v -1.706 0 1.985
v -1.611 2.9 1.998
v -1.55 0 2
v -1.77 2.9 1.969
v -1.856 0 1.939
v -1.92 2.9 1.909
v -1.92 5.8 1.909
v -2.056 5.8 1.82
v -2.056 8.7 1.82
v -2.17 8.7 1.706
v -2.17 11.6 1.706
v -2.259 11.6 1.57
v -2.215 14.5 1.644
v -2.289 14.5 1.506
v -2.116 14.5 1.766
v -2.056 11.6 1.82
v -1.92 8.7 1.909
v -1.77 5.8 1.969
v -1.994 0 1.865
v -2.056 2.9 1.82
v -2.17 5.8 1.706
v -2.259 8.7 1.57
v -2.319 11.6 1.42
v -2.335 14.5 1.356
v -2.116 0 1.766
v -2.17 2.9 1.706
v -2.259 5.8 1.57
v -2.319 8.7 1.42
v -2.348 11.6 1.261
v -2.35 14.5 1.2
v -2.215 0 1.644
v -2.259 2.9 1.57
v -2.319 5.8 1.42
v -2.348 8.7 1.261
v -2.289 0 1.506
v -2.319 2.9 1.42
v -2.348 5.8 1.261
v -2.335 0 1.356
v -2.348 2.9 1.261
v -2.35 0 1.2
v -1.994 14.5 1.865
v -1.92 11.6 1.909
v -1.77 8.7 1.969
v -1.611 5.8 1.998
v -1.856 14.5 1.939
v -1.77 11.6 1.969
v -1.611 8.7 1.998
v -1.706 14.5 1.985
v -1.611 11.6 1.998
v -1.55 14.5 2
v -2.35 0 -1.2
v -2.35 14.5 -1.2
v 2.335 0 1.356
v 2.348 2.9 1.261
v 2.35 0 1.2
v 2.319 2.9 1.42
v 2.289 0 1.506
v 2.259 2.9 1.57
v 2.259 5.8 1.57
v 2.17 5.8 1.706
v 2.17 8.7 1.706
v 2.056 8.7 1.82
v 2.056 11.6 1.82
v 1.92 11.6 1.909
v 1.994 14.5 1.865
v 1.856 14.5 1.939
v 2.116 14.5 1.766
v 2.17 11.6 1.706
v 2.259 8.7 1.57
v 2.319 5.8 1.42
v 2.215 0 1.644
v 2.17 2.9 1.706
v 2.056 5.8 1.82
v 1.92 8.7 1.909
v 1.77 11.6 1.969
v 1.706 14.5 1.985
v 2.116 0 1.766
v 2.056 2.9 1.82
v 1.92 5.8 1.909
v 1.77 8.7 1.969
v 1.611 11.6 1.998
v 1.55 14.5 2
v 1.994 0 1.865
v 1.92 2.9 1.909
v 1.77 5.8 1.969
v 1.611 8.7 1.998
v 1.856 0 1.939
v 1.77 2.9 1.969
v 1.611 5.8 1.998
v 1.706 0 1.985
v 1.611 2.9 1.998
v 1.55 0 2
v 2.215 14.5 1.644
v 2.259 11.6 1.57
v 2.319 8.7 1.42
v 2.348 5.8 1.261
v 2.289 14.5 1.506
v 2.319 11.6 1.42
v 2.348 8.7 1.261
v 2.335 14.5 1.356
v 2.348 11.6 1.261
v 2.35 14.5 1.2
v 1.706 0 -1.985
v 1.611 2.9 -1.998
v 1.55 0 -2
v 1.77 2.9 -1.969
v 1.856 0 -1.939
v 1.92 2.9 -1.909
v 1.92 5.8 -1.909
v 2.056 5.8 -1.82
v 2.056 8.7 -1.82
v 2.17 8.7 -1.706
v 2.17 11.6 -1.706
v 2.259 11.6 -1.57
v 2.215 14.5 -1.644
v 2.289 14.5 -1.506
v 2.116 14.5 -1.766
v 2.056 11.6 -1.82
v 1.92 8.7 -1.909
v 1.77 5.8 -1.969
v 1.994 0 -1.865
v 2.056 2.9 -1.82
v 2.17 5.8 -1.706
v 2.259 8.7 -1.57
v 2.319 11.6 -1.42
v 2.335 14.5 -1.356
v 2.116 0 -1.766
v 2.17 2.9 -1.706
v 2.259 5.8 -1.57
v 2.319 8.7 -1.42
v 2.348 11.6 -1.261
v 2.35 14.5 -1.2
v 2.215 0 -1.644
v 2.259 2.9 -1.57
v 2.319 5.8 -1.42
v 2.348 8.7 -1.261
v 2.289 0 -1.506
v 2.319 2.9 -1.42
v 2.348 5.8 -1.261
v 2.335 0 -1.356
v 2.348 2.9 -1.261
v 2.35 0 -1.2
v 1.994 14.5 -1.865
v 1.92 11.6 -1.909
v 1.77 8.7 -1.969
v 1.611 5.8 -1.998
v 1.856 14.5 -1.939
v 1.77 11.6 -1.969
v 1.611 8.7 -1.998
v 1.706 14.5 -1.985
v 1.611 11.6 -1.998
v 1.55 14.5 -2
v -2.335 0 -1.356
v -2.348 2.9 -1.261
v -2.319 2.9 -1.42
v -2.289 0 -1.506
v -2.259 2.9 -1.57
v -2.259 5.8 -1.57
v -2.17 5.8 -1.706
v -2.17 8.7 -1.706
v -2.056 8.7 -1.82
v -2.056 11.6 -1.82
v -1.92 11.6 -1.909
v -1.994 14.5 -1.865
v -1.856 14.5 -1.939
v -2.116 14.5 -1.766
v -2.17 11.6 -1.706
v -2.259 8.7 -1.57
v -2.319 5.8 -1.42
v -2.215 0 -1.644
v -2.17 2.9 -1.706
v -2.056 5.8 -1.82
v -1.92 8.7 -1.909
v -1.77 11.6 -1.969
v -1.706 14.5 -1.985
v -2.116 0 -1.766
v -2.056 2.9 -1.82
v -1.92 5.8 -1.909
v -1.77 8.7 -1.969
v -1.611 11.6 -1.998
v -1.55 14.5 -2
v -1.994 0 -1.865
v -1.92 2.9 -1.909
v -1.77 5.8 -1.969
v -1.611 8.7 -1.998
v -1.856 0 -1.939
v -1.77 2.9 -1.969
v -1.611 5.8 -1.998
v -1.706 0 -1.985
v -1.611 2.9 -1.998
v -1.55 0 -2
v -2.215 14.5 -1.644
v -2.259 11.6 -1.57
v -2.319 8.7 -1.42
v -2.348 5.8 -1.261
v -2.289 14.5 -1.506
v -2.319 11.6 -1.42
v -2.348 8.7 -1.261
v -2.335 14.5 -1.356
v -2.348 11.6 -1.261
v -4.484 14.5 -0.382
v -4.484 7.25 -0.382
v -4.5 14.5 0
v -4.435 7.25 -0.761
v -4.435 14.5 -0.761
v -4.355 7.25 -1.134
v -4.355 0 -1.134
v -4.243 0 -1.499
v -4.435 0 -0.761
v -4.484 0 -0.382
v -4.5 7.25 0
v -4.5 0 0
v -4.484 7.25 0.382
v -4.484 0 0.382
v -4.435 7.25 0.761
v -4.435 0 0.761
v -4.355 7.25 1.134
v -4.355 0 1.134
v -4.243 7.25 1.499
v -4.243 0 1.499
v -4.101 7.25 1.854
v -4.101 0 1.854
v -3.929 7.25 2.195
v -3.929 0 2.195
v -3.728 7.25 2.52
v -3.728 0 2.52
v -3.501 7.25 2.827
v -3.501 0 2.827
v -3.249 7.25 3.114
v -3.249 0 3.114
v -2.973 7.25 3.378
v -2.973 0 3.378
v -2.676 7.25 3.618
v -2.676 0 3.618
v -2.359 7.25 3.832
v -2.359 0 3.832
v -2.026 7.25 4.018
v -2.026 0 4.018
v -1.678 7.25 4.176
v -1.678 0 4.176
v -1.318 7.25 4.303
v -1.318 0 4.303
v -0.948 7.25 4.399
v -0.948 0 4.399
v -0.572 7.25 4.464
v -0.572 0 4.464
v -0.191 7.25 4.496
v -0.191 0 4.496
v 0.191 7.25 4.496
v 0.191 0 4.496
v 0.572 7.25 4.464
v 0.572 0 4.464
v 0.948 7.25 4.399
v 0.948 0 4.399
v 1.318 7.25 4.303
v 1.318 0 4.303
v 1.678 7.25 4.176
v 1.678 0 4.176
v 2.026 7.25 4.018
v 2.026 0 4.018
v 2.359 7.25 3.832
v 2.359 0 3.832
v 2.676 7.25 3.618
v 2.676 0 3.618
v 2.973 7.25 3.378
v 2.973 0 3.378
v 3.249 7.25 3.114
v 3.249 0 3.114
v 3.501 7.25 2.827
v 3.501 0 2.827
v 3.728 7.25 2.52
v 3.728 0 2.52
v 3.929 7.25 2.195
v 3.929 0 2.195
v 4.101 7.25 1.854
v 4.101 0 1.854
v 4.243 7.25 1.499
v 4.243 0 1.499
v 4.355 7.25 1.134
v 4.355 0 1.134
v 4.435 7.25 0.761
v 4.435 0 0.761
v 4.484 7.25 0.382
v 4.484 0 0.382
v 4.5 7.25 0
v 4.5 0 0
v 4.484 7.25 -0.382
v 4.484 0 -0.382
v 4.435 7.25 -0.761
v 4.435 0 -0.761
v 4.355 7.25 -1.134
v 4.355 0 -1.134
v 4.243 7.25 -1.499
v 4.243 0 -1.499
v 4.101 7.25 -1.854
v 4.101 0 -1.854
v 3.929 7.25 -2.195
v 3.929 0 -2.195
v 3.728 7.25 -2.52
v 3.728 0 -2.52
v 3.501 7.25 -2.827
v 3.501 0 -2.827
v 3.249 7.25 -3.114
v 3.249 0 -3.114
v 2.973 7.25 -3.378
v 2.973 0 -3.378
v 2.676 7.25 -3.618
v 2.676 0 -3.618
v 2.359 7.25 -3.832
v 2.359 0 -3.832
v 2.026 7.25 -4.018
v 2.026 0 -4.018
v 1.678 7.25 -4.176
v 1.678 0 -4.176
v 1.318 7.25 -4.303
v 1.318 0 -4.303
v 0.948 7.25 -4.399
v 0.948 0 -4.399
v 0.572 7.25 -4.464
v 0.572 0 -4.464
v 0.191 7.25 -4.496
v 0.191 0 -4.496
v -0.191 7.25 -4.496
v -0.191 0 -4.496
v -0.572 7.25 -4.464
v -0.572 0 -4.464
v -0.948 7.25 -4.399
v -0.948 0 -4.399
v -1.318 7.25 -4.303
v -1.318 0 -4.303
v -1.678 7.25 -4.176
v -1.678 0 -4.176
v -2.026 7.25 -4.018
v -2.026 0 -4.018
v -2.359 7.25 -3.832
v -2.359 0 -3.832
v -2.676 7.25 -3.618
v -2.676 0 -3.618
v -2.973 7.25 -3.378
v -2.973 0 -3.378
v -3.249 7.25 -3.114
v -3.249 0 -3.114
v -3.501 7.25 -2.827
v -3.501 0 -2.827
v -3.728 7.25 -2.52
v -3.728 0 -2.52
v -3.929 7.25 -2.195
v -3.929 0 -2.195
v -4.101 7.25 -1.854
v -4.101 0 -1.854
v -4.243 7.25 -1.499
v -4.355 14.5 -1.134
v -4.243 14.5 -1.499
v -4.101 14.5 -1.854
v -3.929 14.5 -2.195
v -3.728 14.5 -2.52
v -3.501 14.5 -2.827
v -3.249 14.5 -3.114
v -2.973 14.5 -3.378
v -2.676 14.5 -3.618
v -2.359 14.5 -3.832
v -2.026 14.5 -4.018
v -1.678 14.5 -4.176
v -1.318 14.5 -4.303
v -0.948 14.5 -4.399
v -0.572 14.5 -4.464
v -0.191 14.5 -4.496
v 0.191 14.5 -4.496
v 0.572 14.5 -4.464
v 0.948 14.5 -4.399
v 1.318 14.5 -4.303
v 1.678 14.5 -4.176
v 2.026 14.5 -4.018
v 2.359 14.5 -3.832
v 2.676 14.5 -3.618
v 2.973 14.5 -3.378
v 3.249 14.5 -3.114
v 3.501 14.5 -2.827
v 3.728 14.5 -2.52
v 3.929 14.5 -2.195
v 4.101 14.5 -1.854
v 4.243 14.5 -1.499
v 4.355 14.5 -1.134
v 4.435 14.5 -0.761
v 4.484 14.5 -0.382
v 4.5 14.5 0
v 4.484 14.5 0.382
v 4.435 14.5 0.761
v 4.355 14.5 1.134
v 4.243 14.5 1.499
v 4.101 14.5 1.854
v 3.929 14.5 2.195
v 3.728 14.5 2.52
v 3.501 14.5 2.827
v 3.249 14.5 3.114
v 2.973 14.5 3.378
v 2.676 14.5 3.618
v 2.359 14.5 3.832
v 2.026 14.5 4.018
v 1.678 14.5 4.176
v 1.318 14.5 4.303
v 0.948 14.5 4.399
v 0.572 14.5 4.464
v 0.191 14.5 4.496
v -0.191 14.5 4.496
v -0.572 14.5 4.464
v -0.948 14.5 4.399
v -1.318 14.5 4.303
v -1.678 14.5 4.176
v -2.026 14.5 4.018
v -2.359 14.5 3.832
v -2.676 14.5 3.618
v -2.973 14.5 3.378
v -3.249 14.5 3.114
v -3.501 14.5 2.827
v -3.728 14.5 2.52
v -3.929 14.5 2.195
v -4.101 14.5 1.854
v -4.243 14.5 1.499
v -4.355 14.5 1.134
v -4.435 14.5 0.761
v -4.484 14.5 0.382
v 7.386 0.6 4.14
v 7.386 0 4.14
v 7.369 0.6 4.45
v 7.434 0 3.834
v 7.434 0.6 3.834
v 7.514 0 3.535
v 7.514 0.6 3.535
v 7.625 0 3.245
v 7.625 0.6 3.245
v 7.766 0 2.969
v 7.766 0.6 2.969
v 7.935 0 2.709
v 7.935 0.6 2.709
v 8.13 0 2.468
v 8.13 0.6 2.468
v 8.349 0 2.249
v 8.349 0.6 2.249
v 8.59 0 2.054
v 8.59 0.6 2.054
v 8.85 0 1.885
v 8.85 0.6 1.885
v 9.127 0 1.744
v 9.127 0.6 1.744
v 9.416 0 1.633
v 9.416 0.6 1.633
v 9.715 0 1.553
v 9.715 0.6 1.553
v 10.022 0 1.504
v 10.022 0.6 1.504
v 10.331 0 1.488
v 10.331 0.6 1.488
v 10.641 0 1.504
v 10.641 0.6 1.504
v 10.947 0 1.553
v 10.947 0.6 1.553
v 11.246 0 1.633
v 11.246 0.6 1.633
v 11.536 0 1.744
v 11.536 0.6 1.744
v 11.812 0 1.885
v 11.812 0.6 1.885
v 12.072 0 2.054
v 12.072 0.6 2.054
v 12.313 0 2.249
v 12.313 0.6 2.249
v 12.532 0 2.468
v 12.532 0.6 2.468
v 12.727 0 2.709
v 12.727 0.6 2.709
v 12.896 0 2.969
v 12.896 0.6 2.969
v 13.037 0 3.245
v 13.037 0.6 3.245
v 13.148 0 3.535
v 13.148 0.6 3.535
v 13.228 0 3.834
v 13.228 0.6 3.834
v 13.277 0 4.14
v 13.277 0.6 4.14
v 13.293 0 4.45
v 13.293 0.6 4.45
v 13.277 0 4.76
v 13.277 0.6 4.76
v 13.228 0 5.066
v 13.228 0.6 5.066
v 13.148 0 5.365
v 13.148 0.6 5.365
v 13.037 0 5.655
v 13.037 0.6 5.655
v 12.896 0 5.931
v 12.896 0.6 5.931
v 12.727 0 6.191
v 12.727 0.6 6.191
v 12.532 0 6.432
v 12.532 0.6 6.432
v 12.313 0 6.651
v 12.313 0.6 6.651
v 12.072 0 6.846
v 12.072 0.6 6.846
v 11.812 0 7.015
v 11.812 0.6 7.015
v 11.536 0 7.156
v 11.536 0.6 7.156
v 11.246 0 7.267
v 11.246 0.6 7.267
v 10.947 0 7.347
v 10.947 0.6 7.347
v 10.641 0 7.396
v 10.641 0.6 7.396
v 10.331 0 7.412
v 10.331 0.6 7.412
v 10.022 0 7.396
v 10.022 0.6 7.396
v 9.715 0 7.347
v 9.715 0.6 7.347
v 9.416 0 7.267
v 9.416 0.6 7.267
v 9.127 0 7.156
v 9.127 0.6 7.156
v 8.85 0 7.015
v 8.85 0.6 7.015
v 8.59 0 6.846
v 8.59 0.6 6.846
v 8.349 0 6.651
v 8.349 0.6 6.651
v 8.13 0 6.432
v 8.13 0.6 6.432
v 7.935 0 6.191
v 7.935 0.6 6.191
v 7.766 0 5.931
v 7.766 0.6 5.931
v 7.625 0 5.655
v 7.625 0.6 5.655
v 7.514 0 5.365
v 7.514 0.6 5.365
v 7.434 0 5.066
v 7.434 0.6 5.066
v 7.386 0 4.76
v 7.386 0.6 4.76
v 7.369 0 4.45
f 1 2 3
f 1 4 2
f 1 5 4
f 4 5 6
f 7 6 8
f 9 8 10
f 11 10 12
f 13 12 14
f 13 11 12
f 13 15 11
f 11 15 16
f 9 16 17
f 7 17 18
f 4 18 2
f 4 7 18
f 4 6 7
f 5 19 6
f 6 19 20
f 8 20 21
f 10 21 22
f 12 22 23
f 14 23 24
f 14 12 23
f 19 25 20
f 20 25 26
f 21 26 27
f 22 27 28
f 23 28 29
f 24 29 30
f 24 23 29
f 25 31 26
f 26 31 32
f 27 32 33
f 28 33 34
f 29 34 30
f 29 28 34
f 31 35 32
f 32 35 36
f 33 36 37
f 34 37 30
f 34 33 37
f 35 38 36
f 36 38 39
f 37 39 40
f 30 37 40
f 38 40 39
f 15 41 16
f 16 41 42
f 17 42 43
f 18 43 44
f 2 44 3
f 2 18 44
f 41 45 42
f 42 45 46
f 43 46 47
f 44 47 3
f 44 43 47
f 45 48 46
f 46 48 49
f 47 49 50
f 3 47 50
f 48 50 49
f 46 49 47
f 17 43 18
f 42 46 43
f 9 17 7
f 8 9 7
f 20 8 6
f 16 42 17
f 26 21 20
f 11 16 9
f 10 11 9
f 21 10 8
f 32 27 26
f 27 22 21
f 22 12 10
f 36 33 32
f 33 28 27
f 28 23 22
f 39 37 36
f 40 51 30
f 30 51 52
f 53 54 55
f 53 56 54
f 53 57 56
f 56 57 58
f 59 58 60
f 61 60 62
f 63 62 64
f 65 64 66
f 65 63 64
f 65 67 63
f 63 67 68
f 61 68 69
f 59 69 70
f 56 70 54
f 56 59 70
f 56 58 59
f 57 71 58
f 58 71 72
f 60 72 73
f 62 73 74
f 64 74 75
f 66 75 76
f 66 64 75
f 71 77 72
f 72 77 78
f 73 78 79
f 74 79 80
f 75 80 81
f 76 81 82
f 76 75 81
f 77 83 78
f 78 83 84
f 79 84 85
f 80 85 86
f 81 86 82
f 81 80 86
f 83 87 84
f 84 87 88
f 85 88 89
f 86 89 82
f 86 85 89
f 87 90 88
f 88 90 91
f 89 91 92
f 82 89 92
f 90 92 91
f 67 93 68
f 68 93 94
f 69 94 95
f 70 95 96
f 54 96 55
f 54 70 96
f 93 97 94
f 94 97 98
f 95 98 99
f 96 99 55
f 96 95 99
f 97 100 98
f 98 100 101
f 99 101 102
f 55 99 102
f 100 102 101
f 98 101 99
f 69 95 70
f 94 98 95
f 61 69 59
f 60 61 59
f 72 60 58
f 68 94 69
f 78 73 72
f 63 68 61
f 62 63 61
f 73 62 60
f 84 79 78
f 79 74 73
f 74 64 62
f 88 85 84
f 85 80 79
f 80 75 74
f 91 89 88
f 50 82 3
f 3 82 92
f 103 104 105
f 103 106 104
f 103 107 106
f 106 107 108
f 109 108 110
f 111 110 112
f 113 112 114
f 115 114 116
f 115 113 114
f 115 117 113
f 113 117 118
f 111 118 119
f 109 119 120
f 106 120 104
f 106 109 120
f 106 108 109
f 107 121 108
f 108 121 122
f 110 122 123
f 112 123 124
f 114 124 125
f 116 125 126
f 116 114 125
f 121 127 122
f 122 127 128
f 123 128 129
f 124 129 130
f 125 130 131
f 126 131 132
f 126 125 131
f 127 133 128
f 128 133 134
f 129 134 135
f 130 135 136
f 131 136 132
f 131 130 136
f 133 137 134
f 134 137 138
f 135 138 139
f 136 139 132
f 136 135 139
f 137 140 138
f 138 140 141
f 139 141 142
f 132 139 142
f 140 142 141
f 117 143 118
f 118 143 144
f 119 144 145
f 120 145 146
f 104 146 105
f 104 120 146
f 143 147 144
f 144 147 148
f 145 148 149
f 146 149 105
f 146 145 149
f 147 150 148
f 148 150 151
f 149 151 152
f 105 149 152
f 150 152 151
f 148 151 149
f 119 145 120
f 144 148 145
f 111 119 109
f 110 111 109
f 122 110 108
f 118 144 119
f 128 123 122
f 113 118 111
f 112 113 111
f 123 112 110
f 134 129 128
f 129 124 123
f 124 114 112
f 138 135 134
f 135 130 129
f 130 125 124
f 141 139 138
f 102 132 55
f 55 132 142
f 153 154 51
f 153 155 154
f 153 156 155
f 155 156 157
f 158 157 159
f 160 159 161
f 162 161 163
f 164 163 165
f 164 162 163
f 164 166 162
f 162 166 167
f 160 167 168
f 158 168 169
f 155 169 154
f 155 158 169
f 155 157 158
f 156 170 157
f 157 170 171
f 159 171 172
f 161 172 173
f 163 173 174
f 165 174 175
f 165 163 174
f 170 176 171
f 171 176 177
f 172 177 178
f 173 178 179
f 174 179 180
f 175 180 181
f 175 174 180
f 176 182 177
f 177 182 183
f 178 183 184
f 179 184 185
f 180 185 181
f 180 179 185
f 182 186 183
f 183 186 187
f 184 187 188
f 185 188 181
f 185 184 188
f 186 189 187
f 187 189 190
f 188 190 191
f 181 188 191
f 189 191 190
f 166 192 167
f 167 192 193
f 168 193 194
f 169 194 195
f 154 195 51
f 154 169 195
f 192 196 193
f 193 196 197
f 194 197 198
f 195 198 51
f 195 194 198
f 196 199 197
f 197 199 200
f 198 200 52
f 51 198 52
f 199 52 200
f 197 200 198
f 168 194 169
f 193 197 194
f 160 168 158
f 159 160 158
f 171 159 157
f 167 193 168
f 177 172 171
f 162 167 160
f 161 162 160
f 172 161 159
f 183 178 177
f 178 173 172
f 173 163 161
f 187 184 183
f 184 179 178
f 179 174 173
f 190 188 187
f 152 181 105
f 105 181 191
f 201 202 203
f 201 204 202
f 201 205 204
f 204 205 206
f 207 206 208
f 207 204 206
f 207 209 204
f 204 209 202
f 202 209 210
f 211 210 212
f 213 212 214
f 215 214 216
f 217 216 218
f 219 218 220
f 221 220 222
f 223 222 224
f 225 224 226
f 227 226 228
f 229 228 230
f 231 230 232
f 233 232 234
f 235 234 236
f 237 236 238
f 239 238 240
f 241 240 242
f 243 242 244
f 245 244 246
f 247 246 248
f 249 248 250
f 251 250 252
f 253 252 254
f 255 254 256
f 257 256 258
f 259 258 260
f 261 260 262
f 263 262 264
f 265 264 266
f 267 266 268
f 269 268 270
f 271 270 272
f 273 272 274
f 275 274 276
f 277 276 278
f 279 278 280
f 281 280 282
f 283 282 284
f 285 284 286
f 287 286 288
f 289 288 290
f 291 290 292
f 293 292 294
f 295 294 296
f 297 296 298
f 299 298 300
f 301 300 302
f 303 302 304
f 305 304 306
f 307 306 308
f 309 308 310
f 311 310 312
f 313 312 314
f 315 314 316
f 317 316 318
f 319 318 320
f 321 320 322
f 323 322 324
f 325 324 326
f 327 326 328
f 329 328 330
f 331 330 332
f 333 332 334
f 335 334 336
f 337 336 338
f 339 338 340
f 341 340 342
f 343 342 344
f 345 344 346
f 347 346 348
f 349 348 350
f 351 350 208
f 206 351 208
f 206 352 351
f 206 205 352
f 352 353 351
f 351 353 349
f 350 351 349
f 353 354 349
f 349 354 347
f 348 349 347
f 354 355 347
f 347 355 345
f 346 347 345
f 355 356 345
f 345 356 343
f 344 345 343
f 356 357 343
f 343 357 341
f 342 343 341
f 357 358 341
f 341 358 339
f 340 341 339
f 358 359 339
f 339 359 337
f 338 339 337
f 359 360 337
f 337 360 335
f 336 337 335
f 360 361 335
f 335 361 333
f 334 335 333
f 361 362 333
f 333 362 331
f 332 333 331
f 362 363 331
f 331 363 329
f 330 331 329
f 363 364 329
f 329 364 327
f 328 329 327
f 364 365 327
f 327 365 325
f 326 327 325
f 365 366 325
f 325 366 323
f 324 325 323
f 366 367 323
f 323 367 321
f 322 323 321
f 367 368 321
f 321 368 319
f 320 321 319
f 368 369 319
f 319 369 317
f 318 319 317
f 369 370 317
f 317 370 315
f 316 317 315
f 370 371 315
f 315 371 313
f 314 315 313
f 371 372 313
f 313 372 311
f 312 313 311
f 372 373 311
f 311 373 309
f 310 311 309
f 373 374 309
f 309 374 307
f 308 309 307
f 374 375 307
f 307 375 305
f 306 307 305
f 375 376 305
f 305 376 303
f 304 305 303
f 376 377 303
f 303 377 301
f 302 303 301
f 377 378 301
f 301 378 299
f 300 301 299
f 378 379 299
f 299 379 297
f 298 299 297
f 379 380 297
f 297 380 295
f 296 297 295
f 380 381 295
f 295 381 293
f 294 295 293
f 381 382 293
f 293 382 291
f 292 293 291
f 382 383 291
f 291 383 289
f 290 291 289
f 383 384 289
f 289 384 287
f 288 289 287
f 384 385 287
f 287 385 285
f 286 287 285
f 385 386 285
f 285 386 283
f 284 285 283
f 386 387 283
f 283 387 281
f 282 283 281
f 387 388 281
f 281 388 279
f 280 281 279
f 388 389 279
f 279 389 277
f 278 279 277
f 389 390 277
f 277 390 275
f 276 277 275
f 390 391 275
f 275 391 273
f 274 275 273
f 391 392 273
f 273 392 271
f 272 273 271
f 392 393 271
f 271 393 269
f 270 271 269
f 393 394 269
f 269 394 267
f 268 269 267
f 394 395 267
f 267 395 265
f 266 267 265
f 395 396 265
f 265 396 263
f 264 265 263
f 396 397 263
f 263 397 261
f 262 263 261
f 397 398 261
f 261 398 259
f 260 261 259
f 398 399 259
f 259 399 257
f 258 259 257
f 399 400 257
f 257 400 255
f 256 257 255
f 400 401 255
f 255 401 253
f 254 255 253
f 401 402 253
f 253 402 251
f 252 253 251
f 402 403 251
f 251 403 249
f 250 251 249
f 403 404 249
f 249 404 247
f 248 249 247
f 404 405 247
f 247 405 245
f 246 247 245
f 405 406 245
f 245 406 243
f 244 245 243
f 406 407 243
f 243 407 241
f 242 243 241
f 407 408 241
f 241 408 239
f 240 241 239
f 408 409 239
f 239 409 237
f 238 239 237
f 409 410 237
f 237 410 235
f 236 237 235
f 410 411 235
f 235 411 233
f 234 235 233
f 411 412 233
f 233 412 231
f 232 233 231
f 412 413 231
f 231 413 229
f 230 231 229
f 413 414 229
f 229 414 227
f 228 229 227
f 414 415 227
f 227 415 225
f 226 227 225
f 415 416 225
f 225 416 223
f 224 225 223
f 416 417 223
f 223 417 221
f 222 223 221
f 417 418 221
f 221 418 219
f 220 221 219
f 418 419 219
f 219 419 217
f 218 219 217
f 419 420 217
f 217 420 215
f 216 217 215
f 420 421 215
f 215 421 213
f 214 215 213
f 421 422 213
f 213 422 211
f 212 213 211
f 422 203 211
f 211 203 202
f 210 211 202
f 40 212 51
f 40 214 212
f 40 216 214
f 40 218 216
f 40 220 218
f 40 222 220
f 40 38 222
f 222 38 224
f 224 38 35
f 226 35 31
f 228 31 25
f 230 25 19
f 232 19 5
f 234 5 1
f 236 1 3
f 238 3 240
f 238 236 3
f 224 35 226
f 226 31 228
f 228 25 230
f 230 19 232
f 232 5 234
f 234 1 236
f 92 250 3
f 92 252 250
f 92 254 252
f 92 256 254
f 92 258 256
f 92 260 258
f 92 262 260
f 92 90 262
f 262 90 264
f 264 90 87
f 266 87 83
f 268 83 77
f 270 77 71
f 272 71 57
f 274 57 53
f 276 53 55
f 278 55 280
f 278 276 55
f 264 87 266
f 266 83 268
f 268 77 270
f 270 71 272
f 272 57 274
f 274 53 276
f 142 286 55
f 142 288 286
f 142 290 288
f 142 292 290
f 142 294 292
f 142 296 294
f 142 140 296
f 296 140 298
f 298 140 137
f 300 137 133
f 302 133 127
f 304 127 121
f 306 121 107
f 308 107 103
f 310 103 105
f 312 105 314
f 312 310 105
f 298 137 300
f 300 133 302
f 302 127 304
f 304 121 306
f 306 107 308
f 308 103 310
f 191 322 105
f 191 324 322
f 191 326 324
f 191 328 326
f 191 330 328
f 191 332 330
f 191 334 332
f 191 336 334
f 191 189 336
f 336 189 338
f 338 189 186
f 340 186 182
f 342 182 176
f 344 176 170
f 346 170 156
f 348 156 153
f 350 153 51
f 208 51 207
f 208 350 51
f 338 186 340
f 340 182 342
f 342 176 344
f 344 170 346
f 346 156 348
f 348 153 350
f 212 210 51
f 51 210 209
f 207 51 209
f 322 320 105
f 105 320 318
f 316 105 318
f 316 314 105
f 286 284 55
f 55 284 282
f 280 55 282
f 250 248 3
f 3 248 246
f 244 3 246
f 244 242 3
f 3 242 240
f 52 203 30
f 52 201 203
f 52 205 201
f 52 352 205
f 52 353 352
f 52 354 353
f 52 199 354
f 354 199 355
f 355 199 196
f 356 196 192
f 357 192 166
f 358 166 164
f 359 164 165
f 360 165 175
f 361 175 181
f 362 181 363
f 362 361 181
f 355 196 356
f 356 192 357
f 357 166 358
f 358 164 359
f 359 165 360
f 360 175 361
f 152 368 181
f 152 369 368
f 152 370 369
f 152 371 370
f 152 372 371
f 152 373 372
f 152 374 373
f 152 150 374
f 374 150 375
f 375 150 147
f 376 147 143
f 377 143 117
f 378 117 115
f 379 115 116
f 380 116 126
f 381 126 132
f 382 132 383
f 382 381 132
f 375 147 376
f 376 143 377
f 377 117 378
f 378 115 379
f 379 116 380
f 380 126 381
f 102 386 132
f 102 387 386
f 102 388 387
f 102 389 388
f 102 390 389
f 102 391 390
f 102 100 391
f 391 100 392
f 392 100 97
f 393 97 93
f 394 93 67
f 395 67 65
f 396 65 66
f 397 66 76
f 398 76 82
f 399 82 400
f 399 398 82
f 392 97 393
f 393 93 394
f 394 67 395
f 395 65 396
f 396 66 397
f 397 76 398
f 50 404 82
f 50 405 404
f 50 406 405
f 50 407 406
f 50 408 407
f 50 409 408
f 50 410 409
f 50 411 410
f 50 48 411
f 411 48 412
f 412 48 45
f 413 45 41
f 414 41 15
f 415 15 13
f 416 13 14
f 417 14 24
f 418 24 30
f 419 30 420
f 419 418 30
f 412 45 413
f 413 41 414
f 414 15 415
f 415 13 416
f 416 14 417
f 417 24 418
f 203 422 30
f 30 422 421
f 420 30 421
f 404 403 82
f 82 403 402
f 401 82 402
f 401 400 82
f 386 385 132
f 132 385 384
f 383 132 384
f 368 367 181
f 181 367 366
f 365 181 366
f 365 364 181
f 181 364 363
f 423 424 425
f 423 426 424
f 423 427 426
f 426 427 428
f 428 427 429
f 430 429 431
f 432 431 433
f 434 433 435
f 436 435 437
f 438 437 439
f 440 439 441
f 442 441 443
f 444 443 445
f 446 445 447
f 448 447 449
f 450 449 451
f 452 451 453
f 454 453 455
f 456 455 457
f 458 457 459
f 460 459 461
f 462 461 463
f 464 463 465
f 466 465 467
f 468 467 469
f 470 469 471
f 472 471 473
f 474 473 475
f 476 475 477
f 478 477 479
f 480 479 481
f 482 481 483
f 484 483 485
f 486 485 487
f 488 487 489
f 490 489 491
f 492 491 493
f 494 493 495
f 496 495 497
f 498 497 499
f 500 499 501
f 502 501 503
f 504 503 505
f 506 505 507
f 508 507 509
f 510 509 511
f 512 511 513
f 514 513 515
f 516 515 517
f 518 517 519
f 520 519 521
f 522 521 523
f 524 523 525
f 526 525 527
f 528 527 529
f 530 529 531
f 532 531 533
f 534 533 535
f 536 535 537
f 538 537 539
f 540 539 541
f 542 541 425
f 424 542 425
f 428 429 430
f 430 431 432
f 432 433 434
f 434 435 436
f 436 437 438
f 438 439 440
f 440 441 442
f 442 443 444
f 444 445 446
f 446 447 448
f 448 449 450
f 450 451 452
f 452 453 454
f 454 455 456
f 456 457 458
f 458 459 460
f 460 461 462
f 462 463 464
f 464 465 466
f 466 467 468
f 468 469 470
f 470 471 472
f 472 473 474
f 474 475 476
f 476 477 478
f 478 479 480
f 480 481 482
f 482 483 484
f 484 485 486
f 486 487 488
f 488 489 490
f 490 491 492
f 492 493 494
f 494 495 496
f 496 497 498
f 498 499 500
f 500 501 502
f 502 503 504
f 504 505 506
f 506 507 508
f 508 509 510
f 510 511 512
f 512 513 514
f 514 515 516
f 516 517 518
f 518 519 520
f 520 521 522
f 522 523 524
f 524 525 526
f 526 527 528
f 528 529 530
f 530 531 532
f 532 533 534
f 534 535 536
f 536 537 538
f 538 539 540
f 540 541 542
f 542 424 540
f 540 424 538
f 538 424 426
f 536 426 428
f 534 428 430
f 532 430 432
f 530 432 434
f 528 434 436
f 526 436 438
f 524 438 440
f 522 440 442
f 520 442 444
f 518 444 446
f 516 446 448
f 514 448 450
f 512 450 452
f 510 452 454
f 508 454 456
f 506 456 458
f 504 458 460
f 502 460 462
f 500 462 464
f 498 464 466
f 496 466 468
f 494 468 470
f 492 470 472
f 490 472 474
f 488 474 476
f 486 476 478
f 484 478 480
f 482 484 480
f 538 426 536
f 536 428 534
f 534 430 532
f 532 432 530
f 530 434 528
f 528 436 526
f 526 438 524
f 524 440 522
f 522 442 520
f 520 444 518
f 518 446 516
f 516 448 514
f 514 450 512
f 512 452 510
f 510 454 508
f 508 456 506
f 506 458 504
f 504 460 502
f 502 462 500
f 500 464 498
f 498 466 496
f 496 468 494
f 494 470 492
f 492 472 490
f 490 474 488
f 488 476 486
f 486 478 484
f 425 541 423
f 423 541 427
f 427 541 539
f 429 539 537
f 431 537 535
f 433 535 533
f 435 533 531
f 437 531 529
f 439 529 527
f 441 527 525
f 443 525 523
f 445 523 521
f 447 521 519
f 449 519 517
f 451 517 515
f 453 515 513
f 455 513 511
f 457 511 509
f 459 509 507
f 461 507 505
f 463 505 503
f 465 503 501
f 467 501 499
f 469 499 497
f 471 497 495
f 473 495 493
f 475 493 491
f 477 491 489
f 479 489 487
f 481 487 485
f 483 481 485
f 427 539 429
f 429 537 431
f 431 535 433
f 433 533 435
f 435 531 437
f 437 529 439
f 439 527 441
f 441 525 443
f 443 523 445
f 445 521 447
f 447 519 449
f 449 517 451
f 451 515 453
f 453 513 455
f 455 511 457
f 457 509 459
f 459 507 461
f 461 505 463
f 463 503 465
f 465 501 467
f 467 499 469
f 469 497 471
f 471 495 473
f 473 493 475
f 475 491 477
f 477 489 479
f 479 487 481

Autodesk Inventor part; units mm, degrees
ref_plane "YZ Plane" through (0, 0, 0) normal (1, 0, 0) x (0, 1, 0)
ref_plane "XZ Plane" through (0, 0, 0) normal (0, 1, 0) x (-1, 0, 0)
ref_plane "XY Plane" through (0, 0, 0) normal (0, 0, 1) x (1, 0, 0)
sketch "Sketch1" plane through (0, 0, 0) normal (0, 1, 0) x (-1, 0, 0)
  line L0 (-2.35, 2) -> (2.35, 2)
  line L1 (2.35, 2) -> (2.35, -2)
  line L2 (2.35, -2) -> (-2.35, -2)
  line L3 (-2.35, -2) -> (-2.35, 2)
  circle A0 centre (0, 0) radius 4.5
  line L4 (82.35, 2) -> (87.15, 2)
  line L5 (87.15, 2) -> (87.15, -2.1)
  line L6 (87.15, -2.1) -> (82.35, -2.1)
  line L7 (82.35, -2.1) -> (82.35, 2)
  circle A1 centre (84.75, -0.05) radius 4.5
  line L8 (-2.35, -82.1) -> (2.65, -82.1)
  line L9 (2.65, -82.1) -> (2.65, -86.4)
  line L10 (2.65, -86.4) -> (-2.35, -86.4)
  line L11 (-2.35, -86.4) -> (-2.35, -82.1)
  circle A2 centre (0.15, -84.25) radius 4.5
  line L12 (82.25, -82.1) -> (87.15, -82.1)
  line L13 (87.15, -82.1) -> (87.15, -86.3)
  line L14 (87.15, -86.3) -> (82.25, -86.3)
  line L15 (82.25, -86.3) -> (82.25, -82.1)
  circle A3 centre (84.7, -84.2) radius 4.5
  line L16 (84.75, 2) -> (84.75, -2.1) construction
  line L17 (82.25, -84.2) -> (87.15, -84.2) construction
  line L18 (0.15, -82.1) -> (0.15, -86.4) construction
  circle A4 centre (-10.3312, 4.45) radius 2.9618
  point P0 (0, 2)
  point P1 (2.35, 0)
  point P2 (87.15, -0.05)
  point P3 (2.65, -84.25)
  point P4 (84.7, -82.1)
  dimension "d0" = 4.7
  dimension "d1" = 4
  dimension "d2" = 9
  dimension "d6" = 4.8
  dimension "d7" = 4.1
  dimension "d8" = 9
  dimension "d10" = 5
  dimension "d11" = 4.3
  dimension "d12" = 9
  dimension "d14" = 4.9
  dimension "d15" = 4.2
  dimension "d16" = 9
  dimension "d18" = 80
  dimension "d19" = 80
extrude "Extrusion1" add sketch "Sketch1" along normal blind 14.5 contours A0
fillet "Fillet1" radius 0.8 4 edges at (-2.35, 7.25, -2) (2.35, 7.25, -2) (2.35, 7.25, 2) (-2.35, 7.25, 2)
extrude "Extrusion2" add sketch "Sketch1" along normal blind 0.6 contours A4
equation "\"sp\" = 0.4"
equation "\"d9\" = 0.4"
equation "\"d13\" = 0.4"
equation "\"d17\" = 0.4"
properties part number "EncoderLDRTube"
